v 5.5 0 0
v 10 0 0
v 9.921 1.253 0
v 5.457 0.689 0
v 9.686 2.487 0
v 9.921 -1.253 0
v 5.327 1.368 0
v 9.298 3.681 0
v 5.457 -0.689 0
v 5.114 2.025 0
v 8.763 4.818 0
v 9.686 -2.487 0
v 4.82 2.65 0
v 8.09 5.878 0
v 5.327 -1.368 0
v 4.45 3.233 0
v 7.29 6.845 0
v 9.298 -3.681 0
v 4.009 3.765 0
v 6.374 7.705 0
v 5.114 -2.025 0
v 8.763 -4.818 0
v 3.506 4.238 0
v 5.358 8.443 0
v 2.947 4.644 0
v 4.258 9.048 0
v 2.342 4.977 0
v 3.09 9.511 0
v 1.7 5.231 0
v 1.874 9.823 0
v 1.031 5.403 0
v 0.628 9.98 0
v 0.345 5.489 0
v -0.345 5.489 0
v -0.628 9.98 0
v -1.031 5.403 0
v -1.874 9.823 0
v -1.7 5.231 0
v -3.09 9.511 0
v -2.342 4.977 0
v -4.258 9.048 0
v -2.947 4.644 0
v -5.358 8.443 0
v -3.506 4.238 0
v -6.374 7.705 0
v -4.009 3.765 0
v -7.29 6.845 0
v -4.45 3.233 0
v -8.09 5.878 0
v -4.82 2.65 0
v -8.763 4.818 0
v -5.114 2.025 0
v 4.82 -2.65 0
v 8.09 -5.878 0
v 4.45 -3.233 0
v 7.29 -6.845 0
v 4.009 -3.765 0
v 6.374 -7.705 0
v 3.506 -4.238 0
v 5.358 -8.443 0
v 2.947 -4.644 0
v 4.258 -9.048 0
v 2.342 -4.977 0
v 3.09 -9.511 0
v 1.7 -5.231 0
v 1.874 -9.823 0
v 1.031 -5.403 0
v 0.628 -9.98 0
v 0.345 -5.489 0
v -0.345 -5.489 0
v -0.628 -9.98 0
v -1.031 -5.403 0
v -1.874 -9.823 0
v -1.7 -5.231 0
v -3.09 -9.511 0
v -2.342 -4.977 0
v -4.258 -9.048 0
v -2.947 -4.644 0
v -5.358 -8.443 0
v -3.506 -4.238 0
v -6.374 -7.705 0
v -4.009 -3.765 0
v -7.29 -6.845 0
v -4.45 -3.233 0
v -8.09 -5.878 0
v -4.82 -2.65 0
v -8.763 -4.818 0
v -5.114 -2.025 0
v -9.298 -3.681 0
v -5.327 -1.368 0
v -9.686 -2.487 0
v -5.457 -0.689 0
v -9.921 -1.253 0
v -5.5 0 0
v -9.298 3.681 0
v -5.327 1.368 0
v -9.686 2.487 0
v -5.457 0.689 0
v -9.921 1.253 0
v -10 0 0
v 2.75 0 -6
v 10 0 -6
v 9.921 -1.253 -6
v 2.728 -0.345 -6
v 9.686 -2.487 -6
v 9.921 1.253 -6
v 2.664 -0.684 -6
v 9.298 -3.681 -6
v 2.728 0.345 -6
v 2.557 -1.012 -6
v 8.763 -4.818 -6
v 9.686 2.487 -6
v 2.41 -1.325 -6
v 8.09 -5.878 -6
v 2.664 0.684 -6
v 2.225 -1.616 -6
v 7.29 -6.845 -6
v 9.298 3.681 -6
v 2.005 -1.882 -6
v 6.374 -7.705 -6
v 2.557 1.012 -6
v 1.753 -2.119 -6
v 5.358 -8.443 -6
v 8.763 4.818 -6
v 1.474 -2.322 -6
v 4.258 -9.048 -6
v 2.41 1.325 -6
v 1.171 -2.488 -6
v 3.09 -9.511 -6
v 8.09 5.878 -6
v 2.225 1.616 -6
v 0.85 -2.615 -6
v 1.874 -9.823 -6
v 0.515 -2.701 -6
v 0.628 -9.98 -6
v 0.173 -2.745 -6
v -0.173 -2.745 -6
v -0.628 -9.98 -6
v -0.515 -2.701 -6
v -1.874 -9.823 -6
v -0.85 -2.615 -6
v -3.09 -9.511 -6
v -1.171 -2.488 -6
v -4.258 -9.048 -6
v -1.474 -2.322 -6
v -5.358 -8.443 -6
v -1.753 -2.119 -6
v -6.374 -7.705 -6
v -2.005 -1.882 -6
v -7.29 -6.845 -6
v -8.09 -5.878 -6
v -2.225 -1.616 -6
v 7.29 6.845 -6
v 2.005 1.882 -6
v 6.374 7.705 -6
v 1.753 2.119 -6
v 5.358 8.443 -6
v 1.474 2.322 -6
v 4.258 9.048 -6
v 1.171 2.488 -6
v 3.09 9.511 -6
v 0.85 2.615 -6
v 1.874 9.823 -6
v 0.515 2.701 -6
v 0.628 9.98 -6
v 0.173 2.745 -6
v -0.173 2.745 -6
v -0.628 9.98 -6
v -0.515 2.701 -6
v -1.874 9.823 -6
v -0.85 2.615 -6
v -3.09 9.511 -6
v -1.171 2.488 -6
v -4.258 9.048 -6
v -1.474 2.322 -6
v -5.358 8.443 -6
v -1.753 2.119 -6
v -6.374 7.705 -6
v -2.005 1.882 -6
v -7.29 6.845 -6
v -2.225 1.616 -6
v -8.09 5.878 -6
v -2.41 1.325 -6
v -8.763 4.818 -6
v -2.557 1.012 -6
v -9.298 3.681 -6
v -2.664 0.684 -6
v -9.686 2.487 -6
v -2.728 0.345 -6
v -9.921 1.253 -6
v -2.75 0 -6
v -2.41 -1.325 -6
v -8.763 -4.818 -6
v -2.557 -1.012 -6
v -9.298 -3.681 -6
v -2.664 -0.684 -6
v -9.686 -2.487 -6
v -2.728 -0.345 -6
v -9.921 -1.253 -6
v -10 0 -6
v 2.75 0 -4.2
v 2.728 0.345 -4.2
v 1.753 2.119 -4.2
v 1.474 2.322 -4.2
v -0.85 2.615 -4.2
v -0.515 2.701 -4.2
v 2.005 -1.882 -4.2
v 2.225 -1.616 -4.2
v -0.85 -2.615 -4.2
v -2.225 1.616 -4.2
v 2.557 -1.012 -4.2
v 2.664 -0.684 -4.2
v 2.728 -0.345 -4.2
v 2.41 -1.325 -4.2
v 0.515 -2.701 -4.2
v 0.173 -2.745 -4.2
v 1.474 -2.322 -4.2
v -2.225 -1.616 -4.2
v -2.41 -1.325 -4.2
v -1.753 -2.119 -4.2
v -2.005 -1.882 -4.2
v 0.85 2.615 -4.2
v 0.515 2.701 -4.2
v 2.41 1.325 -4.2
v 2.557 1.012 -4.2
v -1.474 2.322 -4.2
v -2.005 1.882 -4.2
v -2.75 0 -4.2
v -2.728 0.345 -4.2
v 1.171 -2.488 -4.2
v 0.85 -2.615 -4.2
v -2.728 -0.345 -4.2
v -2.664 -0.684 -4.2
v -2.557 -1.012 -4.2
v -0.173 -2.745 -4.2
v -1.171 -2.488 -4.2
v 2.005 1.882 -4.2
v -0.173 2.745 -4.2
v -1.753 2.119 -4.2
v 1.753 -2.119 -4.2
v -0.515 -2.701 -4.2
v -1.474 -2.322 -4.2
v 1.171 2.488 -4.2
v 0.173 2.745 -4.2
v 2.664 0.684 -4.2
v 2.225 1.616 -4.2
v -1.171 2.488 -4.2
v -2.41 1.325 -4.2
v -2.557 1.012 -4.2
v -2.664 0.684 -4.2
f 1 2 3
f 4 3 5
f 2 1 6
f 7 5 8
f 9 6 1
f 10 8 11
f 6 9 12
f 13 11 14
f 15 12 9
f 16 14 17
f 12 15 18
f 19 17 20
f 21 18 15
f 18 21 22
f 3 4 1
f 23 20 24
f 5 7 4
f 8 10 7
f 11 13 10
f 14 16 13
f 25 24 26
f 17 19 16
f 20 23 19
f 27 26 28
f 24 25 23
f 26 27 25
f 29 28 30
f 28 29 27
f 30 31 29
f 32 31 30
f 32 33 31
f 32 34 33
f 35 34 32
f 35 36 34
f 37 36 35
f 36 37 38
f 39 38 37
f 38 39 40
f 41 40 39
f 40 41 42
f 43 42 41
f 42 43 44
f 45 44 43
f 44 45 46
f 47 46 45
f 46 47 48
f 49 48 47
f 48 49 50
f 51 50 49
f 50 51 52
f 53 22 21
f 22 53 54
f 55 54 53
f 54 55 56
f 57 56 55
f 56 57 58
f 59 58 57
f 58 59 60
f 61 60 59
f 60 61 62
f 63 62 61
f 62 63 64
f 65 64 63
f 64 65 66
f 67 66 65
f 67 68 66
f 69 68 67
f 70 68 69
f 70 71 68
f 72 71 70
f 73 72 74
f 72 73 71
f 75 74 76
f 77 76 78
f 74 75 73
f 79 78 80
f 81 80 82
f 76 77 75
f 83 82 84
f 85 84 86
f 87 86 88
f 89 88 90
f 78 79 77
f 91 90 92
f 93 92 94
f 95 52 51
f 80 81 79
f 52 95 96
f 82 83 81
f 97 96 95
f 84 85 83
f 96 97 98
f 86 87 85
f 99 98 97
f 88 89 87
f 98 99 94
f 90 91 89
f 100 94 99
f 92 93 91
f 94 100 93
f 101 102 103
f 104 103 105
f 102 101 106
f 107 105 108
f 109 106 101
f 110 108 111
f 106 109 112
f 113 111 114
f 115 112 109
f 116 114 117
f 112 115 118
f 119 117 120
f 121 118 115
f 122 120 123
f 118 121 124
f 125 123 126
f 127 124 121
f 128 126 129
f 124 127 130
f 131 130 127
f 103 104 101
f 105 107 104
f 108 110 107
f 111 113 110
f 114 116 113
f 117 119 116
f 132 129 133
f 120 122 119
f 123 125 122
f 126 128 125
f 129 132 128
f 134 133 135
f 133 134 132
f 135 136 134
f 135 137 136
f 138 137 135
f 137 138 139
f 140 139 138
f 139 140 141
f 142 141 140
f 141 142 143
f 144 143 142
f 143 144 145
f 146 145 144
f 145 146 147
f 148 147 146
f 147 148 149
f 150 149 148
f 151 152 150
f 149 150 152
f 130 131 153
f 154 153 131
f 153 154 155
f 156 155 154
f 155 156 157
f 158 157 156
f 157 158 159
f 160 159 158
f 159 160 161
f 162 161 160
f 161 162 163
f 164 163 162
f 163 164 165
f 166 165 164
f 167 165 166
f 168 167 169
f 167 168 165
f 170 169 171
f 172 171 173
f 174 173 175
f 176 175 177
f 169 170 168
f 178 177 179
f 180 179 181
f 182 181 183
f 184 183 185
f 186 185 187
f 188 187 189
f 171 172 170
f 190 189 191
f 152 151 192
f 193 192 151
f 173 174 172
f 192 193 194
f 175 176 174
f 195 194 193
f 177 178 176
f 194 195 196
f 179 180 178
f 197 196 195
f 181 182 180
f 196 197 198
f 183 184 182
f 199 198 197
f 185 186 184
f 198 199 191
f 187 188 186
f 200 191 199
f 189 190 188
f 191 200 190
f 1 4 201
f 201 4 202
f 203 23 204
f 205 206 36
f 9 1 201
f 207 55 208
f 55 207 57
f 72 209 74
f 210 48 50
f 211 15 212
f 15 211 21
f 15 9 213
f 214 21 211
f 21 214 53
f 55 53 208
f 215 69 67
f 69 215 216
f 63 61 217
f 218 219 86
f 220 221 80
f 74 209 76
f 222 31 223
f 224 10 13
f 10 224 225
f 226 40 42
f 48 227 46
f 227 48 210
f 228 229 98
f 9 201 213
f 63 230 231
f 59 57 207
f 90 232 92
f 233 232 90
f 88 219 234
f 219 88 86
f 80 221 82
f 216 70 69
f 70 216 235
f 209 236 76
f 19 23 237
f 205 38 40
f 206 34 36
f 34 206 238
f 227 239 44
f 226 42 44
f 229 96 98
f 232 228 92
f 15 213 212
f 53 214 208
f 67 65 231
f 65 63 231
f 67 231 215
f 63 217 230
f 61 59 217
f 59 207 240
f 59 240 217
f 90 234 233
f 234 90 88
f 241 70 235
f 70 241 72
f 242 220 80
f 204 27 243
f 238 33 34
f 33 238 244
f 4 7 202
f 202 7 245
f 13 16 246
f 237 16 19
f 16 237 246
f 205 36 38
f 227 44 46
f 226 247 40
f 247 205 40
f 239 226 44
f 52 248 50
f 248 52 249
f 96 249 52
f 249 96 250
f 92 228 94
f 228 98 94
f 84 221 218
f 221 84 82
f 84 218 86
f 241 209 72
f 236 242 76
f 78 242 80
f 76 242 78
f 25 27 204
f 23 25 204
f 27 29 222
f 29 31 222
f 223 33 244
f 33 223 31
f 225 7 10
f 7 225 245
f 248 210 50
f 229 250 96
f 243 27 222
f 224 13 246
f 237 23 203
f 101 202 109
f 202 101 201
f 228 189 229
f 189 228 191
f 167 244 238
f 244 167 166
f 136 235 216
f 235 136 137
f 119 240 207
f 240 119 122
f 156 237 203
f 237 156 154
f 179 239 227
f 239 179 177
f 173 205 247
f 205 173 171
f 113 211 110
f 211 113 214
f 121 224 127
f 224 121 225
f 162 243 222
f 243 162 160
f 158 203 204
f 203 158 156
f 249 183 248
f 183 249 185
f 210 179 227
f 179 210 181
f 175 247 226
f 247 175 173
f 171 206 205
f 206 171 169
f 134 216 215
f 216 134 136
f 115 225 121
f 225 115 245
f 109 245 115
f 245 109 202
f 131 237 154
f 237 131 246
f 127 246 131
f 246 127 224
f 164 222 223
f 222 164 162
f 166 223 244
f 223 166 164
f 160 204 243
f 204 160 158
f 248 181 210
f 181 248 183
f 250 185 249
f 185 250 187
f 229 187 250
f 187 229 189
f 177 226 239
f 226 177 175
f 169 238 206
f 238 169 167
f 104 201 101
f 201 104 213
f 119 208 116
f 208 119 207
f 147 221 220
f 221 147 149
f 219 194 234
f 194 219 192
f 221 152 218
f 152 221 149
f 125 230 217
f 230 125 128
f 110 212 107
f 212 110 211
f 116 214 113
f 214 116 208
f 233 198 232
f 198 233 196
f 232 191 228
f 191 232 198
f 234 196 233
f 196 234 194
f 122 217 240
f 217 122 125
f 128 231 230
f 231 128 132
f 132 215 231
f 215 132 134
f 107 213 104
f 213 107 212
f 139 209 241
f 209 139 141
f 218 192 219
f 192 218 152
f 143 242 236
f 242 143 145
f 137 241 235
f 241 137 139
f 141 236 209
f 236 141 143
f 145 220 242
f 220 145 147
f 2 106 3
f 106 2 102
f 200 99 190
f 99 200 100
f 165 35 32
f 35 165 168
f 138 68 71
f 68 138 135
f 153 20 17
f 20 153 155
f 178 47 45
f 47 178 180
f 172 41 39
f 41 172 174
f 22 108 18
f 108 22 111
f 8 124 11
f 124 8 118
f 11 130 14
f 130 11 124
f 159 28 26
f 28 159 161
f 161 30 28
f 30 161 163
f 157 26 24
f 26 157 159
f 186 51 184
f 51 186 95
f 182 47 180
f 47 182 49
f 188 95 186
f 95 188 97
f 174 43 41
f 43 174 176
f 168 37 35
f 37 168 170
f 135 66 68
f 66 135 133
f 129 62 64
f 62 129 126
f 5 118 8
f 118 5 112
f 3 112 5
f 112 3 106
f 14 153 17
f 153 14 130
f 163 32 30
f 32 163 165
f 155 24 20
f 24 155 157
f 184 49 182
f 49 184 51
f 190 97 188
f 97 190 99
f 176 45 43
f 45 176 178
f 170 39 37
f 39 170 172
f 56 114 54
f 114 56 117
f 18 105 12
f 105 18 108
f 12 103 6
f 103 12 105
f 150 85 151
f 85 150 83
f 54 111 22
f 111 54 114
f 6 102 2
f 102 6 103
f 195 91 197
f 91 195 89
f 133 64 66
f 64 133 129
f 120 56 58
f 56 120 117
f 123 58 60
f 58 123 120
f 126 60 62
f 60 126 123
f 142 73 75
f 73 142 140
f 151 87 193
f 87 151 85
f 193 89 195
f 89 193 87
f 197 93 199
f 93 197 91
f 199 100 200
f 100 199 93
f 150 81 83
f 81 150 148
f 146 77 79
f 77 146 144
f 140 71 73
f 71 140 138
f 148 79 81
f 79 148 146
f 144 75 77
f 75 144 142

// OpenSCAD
$fn = 50;


difference() {
	union() {
		translate(v = [0, 0, -6.0000000000]) {
			cylinder(h = 6, r = 10.0000000000);
		}
	}
	union() {
		translate(v = [0, 0, 0]) {
			rotate(a = [0, 0, 0]) {
				difference() {
					union() {
						#translate(v = [0, 0, -6.0000000000]) {
							cylinder(h = 6, r = 2.2500000000);
						}
						#translate(v = [0, 0, -4.2000000000]) {
							cylinder(h = 4.2000000000, r1 = 2.7500000000, r2 = 5.5000000000);
						}
						#translate(v = [0, 0, -6.0000000000]) {
							cylinder(h = 6, r = 2.7500000000);
						}
						#translate(v = [0, 0, -6.0000000000]) {
							cylinder(h = 6, r = 2.2500000000);
						}
					}
					union();
				}
			}
		}
	}
}
